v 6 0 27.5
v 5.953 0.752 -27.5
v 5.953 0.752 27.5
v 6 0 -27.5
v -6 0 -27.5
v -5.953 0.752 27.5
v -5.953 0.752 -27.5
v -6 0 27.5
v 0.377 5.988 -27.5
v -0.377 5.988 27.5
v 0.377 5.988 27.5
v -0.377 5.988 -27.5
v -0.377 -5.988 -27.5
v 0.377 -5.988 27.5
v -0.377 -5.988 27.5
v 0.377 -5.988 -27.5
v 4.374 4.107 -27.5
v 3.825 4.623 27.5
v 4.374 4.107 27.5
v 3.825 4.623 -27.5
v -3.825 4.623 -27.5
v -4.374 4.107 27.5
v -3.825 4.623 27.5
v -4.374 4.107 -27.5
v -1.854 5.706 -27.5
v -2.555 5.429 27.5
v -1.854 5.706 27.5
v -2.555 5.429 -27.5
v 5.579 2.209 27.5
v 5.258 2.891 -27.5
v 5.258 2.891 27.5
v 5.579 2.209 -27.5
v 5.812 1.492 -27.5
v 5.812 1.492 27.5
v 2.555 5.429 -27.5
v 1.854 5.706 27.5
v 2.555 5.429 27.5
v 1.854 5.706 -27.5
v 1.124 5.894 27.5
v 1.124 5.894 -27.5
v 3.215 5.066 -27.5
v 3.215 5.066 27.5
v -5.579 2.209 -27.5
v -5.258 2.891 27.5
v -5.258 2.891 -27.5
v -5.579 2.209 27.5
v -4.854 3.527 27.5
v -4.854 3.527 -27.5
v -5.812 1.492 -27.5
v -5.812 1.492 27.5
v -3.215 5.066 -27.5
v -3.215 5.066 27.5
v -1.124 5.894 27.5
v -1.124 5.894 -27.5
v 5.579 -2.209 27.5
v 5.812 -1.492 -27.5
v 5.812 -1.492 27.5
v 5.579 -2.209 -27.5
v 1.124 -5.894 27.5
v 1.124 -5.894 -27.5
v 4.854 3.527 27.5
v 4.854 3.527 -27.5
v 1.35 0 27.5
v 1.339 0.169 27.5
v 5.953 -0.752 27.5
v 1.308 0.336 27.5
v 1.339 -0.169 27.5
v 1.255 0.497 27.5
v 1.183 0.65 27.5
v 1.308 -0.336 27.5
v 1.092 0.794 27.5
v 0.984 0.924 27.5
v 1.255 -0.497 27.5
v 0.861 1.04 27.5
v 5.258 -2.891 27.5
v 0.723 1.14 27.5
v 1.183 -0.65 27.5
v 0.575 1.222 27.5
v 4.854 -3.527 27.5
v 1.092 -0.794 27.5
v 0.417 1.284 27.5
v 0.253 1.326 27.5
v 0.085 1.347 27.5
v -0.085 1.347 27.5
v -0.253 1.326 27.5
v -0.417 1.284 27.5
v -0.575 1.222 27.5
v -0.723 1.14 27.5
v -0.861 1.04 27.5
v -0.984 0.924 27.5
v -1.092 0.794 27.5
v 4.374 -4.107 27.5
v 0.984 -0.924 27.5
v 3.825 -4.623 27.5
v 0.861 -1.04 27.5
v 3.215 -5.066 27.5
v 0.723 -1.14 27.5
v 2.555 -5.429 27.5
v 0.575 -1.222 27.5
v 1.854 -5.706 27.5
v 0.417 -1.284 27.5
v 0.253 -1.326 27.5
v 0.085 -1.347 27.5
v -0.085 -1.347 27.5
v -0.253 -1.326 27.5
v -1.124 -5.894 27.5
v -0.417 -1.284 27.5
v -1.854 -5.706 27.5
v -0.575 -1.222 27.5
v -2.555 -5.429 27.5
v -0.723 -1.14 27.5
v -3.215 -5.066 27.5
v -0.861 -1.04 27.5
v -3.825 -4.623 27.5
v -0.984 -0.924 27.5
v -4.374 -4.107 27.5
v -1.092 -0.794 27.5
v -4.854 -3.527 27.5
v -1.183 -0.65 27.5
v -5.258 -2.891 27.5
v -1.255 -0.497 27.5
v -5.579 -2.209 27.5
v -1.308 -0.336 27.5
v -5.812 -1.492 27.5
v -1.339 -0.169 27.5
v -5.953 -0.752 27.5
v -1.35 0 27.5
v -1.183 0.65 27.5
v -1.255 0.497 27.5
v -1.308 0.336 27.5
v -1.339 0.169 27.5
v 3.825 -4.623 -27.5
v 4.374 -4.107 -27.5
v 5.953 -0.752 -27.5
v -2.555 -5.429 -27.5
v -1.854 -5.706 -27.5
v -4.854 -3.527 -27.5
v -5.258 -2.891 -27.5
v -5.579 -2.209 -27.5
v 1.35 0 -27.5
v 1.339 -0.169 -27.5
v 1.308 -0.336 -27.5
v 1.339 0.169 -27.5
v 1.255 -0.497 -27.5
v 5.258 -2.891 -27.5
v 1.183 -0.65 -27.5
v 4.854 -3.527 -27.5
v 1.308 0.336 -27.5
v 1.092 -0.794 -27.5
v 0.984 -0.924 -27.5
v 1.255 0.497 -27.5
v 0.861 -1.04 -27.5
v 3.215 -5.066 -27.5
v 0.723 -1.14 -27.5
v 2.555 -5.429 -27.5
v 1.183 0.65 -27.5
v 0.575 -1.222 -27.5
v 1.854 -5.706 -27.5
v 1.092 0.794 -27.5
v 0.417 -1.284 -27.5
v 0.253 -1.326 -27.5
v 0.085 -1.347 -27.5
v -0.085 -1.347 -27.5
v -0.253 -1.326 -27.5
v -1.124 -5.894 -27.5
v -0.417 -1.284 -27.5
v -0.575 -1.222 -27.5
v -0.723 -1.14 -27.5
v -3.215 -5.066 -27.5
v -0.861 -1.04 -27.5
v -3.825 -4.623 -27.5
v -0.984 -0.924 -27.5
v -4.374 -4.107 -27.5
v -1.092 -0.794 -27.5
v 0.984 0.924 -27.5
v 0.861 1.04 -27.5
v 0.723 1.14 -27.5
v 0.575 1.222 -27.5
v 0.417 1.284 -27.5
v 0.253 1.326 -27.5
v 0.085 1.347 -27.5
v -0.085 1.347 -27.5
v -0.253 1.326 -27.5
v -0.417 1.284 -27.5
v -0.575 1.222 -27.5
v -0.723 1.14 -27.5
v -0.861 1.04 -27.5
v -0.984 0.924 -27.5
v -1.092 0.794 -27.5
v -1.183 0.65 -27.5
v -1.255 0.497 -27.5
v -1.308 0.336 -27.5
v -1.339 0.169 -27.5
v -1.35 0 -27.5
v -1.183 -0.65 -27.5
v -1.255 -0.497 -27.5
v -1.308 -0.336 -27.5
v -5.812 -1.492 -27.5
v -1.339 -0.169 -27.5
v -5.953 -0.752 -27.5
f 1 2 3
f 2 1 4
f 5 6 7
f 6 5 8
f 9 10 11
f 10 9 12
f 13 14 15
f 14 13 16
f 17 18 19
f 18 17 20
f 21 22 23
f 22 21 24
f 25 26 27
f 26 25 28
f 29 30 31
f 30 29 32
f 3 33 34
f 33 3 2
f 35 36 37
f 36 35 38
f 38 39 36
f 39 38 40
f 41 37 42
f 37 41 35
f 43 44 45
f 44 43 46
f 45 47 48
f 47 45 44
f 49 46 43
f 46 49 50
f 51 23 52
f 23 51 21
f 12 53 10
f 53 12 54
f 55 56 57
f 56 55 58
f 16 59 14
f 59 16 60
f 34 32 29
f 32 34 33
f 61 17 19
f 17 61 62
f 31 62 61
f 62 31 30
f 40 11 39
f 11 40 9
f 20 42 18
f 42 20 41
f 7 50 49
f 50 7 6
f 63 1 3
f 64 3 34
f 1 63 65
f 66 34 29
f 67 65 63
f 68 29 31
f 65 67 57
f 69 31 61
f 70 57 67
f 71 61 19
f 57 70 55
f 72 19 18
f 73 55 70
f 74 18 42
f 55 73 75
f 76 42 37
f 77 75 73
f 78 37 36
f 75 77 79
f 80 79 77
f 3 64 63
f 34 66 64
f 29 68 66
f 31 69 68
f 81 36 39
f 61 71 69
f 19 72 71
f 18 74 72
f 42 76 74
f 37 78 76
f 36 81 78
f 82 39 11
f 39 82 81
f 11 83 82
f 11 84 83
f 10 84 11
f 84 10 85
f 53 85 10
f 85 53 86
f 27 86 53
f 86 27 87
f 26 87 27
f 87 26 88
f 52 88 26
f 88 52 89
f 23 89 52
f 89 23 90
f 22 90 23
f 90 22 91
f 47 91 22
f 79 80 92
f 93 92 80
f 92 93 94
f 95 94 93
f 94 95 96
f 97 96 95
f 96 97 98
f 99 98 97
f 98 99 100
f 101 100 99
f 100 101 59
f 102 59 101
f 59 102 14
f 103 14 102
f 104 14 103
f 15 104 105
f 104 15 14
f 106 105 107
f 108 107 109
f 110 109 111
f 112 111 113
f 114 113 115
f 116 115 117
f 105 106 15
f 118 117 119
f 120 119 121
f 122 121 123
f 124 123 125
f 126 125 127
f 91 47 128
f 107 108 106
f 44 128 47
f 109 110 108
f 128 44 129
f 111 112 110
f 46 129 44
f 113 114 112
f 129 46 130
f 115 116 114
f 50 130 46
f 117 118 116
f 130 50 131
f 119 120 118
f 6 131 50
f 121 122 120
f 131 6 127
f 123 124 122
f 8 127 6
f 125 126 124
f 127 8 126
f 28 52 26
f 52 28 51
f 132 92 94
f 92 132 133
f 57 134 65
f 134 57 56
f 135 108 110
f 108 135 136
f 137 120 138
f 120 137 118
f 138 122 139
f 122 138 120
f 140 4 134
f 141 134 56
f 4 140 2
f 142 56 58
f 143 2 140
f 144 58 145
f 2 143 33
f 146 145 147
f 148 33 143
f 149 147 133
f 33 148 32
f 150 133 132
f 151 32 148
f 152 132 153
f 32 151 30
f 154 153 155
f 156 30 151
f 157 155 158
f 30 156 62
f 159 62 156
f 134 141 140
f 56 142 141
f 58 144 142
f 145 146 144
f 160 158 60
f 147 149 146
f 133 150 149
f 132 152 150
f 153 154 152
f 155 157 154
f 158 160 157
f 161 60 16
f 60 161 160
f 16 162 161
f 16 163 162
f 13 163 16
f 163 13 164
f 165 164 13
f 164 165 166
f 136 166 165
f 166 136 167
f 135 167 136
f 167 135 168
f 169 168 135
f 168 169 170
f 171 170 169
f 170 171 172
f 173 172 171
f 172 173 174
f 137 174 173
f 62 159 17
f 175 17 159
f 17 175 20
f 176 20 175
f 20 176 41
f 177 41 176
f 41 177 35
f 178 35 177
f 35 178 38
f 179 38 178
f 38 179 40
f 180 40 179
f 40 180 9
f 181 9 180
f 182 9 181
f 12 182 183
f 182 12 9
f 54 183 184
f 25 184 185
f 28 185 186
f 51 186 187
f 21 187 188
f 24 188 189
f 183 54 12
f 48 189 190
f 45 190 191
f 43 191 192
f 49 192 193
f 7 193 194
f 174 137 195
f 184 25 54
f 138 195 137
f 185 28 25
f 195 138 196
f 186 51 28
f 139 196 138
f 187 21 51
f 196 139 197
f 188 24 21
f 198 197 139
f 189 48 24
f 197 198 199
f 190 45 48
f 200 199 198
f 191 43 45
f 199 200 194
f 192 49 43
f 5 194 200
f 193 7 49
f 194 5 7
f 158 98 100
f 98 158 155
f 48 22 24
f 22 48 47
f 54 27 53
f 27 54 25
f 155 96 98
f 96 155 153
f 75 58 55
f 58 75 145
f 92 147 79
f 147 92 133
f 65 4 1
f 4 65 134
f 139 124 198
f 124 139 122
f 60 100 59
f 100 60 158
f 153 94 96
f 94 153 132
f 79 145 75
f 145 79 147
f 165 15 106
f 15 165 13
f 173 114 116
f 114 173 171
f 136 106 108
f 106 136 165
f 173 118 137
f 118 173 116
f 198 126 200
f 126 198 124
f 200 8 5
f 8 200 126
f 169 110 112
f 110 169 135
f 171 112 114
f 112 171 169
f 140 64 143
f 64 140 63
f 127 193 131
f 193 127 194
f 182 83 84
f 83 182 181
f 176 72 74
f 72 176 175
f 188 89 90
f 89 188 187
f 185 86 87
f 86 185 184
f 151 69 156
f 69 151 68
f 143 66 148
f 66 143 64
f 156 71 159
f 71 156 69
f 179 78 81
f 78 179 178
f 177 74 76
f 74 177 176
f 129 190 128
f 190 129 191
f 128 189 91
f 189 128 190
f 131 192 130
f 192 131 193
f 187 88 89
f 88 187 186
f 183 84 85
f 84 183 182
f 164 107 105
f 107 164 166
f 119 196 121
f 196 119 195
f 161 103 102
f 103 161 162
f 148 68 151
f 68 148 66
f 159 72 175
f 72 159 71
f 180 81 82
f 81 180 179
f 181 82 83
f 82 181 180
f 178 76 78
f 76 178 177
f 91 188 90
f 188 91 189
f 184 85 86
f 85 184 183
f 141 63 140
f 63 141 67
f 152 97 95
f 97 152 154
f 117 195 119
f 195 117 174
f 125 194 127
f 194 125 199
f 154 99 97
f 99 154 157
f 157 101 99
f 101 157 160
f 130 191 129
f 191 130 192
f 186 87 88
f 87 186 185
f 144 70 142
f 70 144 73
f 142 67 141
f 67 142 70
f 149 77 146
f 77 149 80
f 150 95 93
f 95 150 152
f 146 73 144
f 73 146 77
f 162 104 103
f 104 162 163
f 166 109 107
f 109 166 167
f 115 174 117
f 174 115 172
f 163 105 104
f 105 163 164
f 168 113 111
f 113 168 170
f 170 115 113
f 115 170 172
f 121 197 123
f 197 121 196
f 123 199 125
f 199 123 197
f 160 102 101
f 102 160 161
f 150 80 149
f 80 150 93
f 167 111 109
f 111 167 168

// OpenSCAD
$fn = 50;


difference() {
	union() {
		translate(v = [0, 0, -27.5000000000]) {
			cylinder(h = 55, r = 6.0000000000);
		}
	}
	union() {
		translate(v = [0, 0, -100.0000000000]) {
			cylinder(h = 200, r = 1.3500000000);
		}
	}
}
